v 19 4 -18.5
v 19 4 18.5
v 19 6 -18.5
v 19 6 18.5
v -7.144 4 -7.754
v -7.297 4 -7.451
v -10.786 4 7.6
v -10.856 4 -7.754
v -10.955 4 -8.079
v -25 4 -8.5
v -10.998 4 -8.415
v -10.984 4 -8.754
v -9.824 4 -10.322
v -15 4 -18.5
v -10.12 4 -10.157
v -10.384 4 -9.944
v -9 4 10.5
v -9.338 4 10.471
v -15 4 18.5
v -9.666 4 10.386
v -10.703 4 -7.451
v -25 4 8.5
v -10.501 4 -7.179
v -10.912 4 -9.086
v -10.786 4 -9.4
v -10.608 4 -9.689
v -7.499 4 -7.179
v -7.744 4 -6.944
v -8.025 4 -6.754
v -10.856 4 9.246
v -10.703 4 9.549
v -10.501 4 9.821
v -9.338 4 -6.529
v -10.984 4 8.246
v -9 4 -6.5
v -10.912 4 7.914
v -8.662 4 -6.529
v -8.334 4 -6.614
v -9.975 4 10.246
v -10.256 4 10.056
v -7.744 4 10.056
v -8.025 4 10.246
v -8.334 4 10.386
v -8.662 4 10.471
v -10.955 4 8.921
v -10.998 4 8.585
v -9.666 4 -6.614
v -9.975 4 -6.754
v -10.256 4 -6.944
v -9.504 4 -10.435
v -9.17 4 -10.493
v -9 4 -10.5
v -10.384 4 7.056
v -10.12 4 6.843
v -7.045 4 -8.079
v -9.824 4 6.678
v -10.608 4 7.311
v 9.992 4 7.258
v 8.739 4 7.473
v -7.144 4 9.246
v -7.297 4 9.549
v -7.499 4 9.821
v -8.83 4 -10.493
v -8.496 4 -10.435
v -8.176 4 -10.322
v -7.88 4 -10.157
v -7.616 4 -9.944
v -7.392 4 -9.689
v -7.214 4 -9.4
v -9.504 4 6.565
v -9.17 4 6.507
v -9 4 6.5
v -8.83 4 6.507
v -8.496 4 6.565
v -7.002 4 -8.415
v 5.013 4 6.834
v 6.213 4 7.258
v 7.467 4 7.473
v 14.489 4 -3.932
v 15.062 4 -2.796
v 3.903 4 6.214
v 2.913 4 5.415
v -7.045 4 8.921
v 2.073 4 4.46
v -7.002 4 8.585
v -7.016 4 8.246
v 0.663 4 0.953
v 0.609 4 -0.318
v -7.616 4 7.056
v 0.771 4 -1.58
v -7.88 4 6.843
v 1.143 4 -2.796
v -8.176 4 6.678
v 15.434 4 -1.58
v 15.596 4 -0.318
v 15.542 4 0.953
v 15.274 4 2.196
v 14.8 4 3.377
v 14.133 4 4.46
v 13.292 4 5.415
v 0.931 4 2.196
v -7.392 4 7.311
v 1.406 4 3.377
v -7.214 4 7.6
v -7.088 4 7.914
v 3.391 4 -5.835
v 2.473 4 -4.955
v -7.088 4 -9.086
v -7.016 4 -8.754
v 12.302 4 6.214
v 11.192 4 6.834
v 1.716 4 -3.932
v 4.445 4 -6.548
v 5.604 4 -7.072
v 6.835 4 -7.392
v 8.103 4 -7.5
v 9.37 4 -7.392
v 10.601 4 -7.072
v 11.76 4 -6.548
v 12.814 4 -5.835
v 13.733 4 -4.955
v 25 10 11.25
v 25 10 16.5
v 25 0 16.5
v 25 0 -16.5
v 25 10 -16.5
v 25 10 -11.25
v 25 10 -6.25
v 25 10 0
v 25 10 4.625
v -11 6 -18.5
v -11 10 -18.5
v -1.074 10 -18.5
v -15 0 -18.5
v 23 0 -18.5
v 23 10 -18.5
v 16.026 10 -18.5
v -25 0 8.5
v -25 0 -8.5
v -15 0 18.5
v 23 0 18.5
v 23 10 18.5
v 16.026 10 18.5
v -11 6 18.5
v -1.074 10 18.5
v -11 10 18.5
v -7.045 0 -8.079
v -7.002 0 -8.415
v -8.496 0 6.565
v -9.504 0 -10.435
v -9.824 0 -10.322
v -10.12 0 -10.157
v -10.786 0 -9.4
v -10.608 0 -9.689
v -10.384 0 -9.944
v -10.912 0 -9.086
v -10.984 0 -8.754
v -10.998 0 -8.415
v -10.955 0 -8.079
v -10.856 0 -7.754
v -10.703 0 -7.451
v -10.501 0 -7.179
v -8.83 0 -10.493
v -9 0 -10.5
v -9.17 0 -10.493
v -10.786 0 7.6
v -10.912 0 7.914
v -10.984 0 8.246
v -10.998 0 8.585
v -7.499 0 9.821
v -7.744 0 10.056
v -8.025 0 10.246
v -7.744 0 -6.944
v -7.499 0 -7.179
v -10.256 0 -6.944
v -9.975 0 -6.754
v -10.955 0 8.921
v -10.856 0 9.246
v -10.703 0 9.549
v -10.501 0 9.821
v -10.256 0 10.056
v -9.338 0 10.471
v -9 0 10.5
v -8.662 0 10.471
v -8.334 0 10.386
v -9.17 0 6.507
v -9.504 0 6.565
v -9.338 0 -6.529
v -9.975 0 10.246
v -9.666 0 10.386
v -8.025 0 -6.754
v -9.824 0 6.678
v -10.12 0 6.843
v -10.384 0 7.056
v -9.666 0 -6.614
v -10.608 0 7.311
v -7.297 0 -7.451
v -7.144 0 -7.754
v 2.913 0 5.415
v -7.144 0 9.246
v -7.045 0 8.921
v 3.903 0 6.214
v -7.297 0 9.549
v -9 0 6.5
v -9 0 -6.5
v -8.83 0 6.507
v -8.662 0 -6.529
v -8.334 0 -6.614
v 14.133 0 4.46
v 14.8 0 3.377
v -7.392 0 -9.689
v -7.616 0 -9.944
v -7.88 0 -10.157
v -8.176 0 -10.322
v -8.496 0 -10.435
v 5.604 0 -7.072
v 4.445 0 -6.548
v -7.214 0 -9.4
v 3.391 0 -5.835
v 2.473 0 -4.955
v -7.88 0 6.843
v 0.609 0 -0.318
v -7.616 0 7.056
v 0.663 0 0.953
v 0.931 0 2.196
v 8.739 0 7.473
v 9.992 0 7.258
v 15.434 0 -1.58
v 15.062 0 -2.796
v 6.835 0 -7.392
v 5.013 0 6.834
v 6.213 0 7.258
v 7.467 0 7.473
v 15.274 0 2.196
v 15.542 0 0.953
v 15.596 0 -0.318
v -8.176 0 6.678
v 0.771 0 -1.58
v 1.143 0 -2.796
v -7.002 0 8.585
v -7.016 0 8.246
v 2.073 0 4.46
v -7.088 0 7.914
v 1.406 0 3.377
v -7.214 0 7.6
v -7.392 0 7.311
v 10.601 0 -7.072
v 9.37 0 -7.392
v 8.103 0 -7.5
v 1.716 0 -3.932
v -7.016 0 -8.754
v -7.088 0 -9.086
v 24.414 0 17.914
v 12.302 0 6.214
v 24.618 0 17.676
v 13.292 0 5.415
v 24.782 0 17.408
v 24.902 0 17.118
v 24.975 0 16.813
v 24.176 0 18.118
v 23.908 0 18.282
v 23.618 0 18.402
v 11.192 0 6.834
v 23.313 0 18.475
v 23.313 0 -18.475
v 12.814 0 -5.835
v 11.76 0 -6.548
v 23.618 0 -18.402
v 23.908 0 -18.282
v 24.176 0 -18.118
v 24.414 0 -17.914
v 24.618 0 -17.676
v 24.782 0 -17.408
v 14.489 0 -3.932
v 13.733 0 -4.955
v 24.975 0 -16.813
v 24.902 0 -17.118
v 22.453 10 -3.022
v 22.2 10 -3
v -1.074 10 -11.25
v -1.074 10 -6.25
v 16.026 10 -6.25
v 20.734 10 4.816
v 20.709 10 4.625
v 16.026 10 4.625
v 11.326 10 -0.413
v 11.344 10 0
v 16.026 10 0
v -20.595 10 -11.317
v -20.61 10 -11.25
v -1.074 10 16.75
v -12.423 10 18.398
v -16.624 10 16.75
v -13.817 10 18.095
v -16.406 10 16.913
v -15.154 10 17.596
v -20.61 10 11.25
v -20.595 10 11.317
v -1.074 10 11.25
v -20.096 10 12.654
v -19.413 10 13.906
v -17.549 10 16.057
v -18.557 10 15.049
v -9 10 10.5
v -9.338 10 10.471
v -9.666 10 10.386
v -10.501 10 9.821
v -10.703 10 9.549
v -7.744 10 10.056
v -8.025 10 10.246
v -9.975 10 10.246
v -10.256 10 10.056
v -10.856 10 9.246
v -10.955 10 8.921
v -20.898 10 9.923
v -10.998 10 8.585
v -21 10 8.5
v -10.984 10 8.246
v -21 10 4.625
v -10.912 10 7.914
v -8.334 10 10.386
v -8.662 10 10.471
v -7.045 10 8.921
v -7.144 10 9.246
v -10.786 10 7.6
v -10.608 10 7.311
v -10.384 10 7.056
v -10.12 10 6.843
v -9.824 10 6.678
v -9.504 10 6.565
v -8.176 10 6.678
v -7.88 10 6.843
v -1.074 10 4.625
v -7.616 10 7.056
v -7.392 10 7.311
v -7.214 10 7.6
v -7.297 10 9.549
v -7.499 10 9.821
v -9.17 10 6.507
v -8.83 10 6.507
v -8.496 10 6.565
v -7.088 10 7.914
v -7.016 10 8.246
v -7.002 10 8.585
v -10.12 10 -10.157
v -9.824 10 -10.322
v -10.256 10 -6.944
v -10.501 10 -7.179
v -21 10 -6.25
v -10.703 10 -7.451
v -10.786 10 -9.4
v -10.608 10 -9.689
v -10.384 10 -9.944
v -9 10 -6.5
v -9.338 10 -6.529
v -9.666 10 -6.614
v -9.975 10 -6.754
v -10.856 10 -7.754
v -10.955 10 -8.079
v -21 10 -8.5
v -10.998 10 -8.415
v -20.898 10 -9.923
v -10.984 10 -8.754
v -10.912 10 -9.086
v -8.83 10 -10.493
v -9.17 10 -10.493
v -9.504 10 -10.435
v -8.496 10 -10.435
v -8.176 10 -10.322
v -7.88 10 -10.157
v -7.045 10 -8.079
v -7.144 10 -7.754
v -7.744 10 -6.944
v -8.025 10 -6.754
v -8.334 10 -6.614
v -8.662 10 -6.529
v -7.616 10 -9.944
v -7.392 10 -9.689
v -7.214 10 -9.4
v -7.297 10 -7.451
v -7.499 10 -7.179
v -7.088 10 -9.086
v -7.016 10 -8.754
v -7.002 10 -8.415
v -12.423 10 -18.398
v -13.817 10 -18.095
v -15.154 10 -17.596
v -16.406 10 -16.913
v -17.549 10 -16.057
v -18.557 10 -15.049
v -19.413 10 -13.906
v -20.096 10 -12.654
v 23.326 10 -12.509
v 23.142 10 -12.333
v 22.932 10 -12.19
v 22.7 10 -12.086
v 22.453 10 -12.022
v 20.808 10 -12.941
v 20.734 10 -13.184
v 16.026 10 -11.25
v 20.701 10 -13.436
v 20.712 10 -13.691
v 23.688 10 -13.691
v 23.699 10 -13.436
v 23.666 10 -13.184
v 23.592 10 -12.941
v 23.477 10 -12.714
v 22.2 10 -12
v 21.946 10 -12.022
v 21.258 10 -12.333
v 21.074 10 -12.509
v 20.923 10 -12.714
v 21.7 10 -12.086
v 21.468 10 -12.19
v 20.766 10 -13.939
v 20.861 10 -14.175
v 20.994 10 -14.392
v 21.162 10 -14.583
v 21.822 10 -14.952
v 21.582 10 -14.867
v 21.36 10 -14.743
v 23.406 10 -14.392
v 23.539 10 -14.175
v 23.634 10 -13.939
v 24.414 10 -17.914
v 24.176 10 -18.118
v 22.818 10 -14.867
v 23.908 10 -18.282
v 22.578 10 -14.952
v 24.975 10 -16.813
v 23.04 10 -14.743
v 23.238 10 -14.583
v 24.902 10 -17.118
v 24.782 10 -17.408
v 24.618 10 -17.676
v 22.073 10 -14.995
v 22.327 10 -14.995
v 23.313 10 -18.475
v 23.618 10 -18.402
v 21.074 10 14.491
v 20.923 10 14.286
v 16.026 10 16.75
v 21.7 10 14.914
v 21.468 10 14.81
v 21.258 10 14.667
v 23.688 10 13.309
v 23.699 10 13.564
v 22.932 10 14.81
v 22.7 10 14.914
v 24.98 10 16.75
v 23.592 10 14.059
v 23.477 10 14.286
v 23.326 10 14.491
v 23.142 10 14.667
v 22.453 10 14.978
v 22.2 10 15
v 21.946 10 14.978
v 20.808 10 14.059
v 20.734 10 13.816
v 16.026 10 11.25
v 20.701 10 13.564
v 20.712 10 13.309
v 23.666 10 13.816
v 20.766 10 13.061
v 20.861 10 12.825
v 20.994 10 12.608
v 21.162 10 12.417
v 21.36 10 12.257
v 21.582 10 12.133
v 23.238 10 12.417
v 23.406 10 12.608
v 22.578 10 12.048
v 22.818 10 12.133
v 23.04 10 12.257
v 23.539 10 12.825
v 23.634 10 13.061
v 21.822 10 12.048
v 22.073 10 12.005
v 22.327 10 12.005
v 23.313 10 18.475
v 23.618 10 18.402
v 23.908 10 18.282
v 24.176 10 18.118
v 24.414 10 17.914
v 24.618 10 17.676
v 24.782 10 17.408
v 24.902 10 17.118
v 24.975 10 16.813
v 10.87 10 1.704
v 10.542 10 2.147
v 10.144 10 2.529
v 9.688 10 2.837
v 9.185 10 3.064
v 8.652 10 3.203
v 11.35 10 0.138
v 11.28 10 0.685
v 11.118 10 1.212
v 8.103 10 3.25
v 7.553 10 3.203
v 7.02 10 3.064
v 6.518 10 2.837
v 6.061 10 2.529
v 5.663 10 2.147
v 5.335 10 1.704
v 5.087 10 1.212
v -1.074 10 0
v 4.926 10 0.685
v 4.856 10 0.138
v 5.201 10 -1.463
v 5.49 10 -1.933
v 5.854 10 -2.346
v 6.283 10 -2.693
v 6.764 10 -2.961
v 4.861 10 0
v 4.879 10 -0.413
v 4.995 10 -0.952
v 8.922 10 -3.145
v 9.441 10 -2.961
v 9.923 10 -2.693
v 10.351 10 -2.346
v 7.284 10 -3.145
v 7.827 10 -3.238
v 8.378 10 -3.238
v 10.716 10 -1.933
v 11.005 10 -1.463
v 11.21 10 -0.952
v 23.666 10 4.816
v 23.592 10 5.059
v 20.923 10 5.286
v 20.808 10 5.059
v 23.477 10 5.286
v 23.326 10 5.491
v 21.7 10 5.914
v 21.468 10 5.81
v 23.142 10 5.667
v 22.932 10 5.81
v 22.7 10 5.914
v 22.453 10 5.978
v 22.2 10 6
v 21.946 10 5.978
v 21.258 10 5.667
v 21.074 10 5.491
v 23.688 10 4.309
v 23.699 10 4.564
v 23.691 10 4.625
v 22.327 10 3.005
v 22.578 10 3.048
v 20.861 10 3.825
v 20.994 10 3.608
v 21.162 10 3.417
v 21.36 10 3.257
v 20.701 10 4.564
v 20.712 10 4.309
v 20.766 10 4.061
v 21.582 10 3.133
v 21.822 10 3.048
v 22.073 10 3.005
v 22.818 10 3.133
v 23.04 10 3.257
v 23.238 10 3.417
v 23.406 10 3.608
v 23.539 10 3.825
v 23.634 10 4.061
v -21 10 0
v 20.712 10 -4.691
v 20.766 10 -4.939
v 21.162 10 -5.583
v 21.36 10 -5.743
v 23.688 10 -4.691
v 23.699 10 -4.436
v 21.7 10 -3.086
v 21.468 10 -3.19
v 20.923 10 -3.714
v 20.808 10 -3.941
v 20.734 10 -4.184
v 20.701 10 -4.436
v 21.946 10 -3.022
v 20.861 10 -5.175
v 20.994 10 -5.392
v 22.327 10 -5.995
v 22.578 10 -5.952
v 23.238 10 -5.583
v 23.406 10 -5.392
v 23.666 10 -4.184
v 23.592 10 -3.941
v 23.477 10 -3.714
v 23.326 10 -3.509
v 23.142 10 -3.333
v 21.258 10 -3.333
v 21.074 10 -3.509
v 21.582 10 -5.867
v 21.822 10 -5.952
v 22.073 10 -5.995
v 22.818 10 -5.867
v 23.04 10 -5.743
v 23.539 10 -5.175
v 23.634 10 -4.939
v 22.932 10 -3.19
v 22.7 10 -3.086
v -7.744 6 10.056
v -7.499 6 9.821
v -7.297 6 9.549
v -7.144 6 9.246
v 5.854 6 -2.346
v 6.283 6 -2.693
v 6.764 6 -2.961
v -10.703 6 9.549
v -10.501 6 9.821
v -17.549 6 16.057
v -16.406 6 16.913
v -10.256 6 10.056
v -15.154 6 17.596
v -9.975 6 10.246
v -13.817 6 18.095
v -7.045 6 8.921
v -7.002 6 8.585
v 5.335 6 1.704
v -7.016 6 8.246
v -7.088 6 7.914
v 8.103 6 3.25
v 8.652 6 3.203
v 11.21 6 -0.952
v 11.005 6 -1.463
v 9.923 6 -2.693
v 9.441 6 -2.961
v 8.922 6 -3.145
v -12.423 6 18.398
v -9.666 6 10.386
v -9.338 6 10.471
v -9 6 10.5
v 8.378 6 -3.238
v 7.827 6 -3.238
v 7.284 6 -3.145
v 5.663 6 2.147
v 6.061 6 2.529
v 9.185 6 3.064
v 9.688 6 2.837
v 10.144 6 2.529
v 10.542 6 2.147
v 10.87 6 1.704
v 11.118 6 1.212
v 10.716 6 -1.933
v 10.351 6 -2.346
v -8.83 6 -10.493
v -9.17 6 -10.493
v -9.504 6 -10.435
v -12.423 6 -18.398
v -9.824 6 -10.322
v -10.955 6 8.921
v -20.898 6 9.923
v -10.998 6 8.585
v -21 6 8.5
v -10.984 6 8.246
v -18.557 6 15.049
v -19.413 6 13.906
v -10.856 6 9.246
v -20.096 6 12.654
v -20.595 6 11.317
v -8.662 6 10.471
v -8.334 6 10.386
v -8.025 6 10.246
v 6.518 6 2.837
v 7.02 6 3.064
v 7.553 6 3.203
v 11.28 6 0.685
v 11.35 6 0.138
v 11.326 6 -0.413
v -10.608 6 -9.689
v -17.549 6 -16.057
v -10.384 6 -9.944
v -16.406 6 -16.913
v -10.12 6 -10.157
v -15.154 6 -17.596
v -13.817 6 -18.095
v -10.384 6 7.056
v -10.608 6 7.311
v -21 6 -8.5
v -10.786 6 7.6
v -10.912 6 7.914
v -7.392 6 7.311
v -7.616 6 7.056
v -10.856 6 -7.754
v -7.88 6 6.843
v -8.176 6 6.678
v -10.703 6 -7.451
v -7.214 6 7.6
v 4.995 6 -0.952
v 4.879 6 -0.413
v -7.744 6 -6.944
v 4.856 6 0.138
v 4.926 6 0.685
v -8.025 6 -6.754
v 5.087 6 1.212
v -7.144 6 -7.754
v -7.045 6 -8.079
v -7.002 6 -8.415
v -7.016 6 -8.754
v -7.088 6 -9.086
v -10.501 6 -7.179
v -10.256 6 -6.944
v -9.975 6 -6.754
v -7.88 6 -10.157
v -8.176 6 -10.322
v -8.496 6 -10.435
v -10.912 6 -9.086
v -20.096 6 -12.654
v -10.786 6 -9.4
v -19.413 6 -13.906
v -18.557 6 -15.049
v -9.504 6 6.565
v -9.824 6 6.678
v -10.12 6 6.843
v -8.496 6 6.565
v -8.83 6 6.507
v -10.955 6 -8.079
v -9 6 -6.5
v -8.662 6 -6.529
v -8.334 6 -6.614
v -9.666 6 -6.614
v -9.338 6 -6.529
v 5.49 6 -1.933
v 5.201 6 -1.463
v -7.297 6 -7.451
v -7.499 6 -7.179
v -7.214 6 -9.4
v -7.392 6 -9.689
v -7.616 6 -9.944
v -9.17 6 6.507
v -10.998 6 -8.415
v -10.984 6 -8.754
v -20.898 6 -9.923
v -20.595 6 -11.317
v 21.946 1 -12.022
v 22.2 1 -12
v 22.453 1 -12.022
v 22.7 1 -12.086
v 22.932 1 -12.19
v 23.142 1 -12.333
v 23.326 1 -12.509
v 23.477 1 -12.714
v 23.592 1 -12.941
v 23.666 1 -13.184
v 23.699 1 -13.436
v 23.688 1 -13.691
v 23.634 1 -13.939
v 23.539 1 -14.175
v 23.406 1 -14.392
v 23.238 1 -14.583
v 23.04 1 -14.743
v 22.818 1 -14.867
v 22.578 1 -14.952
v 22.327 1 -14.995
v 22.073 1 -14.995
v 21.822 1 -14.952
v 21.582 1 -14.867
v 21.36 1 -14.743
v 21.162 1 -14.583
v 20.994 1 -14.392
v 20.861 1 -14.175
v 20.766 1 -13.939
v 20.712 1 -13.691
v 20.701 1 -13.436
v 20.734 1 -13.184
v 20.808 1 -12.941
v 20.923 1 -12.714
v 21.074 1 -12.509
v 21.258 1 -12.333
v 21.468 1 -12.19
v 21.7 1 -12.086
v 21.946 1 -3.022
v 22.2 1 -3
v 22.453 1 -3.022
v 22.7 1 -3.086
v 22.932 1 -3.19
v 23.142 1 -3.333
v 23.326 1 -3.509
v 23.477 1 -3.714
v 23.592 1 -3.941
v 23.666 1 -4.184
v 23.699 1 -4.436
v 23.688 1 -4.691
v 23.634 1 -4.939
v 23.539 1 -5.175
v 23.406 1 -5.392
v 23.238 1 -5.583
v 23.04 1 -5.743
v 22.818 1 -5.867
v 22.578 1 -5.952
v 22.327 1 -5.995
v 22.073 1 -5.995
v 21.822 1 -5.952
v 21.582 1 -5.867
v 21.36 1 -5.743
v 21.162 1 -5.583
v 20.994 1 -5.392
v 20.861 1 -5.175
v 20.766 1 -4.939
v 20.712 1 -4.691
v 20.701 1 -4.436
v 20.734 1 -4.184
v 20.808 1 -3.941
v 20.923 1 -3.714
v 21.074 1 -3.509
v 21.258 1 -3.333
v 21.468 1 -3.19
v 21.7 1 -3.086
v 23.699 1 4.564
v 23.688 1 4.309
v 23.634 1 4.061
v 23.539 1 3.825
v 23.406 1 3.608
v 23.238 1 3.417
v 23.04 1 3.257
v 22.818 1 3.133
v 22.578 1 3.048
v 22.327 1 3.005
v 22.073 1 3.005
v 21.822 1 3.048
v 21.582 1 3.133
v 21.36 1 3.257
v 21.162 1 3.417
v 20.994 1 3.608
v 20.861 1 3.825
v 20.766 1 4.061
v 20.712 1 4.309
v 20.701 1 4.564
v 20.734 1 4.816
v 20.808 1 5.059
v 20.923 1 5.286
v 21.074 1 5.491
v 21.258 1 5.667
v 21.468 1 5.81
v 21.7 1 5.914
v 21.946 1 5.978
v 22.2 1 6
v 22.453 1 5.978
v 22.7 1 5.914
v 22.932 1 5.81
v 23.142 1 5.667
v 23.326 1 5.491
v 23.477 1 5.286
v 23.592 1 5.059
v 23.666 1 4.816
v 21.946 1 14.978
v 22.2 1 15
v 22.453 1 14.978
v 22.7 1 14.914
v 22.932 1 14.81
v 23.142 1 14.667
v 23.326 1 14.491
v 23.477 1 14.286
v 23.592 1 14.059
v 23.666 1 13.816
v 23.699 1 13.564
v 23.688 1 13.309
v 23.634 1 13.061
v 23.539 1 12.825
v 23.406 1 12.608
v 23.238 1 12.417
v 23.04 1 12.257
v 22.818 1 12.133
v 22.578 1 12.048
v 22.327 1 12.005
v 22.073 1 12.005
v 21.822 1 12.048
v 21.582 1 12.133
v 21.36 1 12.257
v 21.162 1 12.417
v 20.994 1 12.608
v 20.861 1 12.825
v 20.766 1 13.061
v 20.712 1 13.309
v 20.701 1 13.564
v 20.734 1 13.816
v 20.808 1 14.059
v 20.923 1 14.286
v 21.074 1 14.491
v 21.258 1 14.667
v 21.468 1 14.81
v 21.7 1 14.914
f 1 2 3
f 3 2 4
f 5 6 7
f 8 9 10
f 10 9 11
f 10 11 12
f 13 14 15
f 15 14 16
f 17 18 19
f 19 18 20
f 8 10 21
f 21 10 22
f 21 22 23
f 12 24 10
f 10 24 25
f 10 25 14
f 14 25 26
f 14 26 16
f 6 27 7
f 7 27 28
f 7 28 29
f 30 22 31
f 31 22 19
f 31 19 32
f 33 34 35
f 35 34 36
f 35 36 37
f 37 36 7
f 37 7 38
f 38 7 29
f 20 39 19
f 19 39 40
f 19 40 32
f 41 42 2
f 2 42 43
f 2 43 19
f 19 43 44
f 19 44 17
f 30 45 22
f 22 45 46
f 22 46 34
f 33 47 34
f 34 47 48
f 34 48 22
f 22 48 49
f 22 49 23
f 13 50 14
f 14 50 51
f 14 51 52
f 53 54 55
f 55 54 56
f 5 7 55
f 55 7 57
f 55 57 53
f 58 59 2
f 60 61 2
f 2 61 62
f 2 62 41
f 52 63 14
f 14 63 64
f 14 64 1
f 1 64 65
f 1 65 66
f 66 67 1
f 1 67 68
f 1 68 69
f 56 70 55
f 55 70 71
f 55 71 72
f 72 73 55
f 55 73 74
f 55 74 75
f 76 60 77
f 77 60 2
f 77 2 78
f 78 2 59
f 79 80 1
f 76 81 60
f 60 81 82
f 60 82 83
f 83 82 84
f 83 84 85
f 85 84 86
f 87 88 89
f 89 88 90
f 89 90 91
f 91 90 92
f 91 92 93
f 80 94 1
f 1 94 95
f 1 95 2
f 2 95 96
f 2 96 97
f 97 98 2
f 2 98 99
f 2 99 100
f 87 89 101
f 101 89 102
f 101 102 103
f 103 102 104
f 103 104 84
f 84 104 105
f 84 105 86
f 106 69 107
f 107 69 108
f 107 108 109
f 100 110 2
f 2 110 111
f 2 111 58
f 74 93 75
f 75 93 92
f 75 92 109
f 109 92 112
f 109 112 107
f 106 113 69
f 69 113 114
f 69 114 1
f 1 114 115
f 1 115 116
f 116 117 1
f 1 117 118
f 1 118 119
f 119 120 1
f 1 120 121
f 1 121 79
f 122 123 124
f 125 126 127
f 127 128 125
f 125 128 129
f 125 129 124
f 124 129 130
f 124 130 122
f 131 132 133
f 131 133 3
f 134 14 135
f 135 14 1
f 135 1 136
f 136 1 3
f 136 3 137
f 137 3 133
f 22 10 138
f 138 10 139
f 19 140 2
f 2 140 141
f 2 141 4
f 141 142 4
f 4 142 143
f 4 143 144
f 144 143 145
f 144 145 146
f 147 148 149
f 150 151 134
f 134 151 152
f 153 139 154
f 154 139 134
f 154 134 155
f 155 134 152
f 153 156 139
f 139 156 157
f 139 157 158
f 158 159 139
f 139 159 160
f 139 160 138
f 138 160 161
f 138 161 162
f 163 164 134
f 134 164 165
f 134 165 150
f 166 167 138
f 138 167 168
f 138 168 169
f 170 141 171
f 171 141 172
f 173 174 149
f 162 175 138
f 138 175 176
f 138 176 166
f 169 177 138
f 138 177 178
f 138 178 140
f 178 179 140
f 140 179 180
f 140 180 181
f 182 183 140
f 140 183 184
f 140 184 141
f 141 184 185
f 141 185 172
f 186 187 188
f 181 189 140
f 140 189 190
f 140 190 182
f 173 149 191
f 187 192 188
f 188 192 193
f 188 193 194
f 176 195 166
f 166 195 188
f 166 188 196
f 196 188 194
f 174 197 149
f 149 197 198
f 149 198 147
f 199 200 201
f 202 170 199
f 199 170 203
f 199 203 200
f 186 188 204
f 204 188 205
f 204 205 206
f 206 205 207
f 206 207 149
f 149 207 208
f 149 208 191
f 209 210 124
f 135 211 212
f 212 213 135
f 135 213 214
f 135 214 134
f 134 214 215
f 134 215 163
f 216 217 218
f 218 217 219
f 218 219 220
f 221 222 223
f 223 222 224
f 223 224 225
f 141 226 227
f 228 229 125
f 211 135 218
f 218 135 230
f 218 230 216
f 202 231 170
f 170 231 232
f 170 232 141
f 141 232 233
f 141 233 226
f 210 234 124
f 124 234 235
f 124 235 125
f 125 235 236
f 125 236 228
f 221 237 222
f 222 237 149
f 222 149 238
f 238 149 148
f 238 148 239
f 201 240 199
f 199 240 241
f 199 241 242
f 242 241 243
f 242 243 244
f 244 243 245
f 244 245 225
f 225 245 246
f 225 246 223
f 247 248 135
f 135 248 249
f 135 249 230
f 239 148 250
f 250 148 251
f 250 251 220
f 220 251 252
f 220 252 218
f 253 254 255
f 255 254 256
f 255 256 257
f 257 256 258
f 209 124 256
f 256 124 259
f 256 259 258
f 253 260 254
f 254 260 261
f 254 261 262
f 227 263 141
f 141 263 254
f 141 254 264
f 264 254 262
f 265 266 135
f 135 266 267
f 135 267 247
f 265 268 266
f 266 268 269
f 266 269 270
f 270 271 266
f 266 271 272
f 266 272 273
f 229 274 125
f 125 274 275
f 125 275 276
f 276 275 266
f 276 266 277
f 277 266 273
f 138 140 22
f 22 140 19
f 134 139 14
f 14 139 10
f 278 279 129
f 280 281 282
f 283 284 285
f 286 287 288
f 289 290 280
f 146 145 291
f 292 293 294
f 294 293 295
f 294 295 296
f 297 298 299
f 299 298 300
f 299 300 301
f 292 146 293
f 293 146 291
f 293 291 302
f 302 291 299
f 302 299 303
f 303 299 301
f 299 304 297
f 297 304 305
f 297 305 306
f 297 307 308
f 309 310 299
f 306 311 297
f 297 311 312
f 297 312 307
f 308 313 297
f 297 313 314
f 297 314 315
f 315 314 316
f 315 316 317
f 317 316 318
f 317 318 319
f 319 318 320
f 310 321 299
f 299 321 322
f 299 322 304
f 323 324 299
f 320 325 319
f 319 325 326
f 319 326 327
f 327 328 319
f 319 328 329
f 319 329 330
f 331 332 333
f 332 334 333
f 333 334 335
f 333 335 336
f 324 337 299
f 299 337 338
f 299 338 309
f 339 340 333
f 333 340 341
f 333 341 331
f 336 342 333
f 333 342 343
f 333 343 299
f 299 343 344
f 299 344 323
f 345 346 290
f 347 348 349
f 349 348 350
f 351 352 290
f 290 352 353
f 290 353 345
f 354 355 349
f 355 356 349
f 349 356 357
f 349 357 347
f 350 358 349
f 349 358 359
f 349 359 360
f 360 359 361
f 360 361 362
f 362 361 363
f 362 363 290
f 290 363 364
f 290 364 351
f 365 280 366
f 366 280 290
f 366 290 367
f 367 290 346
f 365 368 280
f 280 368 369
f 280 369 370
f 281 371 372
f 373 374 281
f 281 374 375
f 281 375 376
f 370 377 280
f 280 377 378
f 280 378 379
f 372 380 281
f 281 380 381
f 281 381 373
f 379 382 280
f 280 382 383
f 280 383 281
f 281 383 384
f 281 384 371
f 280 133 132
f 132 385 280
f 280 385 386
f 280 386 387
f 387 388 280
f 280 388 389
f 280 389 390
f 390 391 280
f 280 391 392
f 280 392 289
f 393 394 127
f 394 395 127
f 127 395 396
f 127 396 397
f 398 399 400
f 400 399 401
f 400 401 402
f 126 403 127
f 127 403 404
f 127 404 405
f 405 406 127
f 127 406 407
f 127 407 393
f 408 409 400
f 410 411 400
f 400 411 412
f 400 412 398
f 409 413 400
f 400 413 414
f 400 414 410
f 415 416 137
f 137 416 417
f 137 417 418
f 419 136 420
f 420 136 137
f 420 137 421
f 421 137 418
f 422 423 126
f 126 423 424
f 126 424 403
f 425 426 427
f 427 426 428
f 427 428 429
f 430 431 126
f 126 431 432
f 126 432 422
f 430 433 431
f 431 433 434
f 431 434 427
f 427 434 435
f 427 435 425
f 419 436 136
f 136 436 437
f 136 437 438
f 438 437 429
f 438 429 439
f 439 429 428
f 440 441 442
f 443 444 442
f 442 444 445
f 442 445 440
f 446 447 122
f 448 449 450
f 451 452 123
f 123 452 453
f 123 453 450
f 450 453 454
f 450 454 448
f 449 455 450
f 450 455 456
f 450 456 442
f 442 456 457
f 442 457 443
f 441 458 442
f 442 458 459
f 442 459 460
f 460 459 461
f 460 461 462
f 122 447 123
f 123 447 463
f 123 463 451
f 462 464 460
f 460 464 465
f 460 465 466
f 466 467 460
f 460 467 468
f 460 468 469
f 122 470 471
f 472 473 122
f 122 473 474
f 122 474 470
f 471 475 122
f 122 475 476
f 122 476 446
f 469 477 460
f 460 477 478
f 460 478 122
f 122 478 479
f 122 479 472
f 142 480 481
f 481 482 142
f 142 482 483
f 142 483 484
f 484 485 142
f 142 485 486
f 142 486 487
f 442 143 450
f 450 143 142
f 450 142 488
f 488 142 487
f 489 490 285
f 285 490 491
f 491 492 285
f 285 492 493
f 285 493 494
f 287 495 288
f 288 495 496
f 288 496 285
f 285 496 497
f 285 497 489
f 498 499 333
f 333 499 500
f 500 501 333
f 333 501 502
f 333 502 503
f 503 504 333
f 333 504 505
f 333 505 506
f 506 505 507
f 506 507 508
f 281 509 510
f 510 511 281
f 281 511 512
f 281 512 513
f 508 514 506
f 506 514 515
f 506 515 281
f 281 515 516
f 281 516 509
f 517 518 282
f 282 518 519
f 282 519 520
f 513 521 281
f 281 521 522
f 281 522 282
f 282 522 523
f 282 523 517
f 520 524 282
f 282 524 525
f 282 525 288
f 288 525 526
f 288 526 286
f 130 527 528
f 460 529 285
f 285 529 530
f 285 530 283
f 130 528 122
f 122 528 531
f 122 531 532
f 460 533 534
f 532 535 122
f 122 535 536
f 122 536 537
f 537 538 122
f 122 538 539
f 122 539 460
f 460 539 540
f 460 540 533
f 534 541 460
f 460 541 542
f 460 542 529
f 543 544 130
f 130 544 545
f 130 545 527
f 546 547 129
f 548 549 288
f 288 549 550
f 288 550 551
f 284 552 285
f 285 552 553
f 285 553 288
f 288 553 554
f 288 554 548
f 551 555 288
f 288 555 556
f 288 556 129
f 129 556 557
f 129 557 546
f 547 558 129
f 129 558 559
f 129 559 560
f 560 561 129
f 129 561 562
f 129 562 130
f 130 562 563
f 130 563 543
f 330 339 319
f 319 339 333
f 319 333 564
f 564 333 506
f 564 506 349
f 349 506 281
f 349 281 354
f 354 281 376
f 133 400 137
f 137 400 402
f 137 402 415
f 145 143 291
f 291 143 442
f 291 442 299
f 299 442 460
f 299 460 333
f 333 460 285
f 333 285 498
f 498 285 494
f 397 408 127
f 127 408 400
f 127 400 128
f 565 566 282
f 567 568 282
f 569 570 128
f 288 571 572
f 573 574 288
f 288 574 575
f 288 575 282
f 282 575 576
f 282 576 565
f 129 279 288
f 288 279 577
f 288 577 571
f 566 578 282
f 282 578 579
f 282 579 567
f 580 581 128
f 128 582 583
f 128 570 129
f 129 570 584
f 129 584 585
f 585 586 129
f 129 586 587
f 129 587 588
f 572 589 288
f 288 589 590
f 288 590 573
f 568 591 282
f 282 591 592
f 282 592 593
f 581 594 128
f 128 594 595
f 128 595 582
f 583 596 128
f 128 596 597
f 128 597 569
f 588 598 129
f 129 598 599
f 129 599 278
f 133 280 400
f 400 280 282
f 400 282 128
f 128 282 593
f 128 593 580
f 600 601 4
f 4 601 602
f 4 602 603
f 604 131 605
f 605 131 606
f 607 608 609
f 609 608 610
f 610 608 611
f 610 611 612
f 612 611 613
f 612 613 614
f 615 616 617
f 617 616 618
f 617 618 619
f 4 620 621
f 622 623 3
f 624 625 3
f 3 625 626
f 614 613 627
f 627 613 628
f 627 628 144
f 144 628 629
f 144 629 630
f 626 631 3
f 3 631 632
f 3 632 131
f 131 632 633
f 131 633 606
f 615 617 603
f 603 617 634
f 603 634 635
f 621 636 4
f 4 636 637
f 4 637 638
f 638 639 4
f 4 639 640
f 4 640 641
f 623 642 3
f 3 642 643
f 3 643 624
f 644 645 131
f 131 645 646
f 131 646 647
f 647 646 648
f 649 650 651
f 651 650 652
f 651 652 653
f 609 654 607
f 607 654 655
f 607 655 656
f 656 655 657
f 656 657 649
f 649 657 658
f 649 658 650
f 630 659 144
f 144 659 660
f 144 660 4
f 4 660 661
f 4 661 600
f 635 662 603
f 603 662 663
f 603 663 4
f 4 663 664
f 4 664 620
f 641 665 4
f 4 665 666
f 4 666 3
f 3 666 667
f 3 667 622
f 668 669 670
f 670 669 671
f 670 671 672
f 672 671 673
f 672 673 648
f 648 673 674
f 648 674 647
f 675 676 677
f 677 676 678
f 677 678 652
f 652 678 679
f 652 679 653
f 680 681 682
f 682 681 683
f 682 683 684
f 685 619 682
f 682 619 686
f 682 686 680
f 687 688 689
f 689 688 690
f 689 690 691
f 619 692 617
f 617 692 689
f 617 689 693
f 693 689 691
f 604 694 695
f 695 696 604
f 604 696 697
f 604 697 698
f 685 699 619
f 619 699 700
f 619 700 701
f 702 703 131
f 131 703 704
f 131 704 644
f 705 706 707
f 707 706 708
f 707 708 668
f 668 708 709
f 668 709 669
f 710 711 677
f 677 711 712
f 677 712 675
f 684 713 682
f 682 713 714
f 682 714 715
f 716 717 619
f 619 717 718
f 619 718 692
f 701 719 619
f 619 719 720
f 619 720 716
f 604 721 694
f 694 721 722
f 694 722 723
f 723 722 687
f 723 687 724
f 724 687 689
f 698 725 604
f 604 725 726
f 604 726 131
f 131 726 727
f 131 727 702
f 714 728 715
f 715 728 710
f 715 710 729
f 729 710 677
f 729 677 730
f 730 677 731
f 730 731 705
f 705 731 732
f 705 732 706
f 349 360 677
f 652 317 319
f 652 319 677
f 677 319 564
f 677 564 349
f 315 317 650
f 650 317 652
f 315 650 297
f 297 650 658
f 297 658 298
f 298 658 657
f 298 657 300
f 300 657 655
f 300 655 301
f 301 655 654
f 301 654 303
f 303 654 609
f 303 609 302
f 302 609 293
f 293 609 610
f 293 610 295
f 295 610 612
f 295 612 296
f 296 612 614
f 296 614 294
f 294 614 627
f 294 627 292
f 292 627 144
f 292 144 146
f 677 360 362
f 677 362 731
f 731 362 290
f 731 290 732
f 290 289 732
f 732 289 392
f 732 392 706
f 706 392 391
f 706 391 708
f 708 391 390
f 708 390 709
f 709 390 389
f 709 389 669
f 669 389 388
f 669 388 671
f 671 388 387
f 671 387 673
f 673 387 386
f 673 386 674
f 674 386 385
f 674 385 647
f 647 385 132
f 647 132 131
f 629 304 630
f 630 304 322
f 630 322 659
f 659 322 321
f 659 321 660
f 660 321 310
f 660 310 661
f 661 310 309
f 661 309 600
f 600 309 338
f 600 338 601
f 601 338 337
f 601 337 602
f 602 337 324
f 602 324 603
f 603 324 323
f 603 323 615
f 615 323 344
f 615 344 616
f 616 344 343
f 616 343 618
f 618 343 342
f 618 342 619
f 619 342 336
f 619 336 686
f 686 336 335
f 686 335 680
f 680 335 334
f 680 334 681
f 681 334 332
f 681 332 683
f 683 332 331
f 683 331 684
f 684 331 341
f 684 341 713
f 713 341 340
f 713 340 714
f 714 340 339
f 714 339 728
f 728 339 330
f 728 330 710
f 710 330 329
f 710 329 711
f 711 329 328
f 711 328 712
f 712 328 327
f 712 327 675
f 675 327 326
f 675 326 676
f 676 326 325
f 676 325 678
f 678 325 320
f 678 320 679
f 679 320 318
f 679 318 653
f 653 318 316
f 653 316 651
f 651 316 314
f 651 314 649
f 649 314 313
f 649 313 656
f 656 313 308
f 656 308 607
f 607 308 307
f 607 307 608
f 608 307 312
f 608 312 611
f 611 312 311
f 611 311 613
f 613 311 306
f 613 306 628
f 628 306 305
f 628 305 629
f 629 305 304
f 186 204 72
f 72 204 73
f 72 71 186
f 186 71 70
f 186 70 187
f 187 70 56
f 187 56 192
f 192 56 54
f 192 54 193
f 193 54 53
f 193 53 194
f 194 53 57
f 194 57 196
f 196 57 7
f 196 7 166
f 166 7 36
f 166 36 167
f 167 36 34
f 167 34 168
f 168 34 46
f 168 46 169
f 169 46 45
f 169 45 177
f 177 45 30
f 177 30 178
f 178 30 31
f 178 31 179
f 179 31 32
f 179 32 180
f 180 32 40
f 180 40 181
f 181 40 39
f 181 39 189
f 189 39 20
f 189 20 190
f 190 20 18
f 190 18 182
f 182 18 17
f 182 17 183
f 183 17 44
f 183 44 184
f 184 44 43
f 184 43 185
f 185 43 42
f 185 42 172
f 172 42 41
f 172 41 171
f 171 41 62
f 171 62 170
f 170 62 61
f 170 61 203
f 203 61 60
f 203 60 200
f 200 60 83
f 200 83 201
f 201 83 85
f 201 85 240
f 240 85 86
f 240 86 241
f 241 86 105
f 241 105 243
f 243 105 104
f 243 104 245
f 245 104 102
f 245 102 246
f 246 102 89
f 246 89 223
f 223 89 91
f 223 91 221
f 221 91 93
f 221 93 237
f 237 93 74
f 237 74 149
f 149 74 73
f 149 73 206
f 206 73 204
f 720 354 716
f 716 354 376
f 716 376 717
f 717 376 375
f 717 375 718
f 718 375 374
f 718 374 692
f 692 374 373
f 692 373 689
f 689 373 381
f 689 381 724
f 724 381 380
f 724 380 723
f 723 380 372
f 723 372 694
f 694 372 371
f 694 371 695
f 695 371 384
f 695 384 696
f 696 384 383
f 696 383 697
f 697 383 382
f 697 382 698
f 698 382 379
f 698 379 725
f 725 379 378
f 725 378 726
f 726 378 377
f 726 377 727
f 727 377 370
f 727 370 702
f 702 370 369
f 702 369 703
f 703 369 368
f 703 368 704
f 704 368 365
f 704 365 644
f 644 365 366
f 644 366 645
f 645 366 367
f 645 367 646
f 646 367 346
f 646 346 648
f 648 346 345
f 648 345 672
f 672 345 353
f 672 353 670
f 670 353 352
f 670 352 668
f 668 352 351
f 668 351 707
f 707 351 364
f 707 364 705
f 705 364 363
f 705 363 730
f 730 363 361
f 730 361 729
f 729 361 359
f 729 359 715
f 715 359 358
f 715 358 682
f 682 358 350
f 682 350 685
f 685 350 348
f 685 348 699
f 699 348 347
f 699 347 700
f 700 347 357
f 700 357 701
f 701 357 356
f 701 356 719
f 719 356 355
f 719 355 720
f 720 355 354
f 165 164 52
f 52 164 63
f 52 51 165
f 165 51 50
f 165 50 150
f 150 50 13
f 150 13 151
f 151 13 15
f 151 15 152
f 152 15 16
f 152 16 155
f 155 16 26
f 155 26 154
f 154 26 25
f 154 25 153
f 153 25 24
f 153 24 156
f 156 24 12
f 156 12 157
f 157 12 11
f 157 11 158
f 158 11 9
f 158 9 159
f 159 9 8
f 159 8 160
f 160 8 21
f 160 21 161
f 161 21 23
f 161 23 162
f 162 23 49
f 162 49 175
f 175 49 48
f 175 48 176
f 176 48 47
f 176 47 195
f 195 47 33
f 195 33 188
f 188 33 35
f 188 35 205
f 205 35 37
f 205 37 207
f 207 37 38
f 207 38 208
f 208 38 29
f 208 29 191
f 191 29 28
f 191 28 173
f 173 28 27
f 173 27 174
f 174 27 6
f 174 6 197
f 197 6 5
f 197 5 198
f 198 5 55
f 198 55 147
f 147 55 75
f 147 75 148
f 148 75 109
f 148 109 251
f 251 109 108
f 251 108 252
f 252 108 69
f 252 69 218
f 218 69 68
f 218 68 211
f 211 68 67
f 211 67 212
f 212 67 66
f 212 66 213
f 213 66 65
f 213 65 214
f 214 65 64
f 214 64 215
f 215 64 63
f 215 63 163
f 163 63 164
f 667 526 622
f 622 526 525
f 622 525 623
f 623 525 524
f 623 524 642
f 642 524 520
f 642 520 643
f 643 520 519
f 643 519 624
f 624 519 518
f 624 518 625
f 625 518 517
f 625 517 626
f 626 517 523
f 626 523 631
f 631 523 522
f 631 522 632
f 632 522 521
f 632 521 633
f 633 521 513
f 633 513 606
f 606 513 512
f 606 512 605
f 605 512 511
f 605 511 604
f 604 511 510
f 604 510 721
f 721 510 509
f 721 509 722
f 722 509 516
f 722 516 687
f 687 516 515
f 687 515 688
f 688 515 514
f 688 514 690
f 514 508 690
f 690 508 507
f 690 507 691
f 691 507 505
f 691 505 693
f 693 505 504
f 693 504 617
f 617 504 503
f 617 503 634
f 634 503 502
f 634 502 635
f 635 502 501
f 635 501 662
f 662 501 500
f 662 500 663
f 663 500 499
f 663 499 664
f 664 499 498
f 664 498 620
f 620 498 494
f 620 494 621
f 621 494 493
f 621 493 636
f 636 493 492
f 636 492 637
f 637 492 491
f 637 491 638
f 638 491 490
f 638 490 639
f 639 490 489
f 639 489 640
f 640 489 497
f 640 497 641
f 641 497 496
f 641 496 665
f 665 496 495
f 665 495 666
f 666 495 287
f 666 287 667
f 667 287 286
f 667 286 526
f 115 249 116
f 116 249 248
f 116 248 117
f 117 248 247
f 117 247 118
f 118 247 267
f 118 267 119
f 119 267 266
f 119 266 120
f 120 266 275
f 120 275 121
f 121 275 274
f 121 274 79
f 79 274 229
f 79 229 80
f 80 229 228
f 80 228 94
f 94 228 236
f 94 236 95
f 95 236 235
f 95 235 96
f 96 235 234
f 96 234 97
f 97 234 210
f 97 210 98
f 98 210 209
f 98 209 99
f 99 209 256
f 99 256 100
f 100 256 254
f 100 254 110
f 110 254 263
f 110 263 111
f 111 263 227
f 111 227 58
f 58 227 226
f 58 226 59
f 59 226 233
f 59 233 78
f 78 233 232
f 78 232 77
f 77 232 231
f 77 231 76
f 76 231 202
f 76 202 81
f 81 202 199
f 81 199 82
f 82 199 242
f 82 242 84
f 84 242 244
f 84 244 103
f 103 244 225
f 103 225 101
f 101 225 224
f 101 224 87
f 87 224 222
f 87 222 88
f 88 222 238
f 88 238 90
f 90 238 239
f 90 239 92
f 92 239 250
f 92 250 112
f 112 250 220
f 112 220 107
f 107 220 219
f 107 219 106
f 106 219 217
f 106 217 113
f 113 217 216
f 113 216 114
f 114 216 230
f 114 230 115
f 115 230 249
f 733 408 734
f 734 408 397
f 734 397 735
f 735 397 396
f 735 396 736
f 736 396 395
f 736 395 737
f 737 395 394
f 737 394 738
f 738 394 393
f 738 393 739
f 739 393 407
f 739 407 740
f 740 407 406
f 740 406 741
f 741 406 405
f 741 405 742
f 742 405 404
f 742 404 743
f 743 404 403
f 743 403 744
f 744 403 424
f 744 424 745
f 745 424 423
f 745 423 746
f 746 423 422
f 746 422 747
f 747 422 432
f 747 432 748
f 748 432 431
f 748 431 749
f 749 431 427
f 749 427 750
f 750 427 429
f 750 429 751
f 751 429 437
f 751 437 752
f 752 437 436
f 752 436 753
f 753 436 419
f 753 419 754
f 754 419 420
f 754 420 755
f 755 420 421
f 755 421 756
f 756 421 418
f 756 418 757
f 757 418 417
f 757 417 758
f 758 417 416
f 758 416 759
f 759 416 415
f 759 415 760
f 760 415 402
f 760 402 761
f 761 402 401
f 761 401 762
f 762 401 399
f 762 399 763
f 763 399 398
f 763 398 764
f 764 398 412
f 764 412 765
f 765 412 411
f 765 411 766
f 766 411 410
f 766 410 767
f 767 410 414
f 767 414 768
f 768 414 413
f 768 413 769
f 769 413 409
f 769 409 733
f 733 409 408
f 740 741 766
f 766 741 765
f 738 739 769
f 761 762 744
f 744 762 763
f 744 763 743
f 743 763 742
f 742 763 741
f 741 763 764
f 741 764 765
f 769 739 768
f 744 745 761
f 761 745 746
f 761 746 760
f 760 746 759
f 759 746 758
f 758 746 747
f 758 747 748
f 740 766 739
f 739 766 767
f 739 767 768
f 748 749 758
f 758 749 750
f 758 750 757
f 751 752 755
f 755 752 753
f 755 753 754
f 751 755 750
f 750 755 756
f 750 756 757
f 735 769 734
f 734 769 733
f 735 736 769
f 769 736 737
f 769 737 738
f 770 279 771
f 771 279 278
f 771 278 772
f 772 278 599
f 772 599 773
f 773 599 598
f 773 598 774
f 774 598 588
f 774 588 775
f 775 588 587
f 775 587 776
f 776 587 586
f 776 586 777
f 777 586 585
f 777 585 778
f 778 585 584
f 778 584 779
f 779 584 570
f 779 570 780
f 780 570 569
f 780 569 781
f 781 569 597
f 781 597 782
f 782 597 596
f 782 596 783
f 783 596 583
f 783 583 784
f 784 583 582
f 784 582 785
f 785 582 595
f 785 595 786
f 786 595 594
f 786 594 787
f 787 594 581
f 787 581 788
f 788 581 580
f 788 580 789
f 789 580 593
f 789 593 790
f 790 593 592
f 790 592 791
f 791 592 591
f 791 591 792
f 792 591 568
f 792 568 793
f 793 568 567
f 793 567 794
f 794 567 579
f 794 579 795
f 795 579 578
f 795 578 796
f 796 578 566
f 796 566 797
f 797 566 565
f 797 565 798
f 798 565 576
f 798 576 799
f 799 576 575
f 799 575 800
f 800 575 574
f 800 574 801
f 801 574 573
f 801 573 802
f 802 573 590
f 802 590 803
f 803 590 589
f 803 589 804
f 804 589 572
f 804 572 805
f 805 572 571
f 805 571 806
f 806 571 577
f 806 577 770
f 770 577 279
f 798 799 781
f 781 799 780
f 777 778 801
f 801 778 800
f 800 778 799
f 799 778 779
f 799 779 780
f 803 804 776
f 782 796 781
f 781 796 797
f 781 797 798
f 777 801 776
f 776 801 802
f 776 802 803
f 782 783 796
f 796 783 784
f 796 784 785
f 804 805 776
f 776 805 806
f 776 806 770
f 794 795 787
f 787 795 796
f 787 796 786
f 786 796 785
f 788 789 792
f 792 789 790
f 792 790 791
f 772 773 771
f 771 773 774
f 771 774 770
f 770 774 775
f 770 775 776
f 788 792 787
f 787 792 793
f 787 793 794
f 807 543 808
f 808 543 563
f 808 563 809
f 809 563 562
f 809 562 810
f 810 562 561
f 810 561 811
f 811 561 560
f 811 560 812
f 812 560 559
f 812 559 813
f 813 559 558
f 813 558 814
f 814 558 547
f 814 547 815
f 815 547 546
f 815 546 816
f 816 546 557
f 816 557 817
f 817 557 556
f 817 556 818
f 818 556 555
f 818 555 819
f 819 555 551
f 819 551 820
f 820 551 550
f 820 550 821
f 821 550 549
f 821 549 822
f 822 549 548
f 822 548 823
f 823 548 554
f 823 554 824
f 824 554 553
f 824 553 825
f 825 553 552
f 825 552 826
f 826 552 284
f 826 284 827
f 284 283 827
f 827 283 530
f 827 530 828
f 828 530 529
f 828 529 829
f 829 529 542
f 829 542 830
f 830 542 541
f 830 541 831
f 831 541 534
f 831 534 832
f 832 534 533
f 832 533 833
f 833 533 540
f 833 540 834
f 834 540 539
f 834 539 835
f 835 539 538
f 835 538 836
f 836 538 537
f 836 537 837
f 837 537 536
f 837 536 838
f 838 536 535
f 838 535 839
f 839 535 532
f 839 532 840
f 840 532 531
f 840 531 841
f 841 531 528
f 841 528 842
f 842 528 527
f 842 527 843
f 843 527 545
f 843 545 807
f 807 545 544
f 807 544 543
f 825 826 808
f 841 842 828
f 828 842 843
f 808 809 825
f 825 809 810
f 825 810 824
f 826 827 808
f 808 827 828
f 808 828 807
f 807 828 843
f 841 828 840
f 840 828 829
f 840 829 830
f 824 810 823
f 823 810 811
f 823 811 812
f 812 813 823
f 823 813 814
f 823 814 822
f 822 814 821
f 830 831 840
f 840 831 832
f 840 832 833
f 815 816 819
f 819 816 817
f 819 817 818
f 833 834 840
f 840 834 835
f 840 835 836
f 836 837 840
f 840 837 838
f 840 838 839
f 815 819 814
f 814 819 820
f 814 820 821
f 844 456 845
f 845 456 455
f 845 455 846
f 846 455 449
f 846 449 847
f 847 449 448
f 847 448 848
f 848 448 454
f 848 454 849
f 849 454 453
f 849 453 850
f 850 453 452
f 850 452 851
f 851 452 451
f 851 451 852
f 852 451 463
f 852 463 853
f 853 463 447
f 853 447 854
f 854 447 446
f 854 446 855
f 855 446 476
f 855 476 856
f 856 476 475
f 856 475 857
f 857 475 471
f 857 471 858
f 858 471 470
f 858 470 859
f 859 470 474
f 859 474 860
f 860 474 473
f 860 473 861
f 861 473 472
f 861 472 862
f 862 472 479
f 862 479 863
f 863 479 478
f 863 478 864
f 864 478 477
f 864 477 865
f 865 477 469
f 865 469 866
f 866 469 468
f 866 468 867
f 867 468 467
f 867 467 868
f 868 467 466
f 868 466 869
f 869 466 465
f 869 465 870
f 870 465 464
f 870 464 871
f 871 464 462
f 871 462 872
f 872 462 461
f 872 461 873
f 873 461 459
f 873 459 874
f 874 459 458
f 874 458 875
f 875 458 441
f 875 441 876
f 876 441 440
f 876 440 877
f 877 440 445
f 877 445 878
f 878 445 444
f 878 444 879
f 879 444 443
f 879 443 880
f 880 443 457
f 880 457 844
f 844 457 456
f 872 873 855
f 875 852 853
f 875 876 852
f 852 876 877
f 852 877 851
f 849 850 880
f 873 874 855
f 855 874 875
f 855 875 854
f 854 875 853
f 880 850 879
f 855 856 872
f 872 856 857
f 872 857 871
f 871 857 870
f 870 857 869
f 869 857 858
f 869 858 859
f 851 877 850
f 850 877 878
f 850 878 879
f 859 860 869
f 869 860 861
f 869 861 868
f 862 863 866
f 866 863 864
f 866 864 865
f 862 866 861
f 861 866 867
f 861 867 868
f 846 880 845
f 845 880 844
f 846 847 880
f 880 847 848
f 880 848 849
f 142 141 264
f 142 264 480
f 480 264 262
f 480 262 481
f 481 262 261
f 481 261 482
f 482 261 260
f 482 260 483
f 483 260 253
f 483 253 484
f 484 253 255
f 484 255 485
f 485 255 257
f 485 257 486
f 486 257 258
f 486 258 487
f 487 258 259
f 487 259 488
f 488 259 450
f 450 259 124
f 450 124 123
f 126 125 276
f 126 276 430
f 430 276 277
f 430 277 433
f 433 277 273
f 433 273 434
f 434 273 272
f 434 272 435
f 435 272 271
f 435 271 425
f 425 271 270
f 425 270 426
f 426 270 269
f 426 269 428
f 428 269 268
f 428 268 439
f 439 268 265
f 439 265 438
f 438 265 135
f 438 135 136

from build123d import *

# Parameters (mm, degrees)
SKETCH1_W           = 50
SKETCH1_H           = 37
BOSS_EXTRUDE1_DEPTH = 4
CHAMFER1_SIZE       = 10
SKETCH2_W           = 6
SKETCH2_H           = 37
BOSS_EXTRUDE2_DEPTH = 6
SKETCH3_W           = 37
SKETCH3_H           = 4
BOSS_EXTRUDE3_DEPTH = 40
FILLET1_R           = 10
SKETCH4_R           = 2
CUT_EXTRUDE1_DEPTH  = 40
SKETCH5_R           = 3.25
CUT_EXTRUDE2_DEPTH  = 40
SKETCH6_R           = 7.5
CUT_EXTRUDE3_DEPTH  = 5
SKETCH7_R           = 1.5
CUT_EXTRUDE4_DEPTH  = 9
FILLET2_R           = 2


with BuildPart() as part:
    # Sketch1 → Boss-Extrude1 (new body)
    with BuildSketch(Plane(origin=(0, 0, 0), x_dir=(1, 0, 0), z_dir=(0, 1, 0))):
        Rectangle(SKETCH1_W, SKETCH1_H)
    extrude(amount=BOSS_EXTRUDE1_DEPTH)

    # Chamfer1
    chamfer1_edges = [part.edges().sort_by_distance(p)[0] for p in [
        (-25, 2, 18.5),
        (-25, 2, -18.5),
    ]]
    chamfer(chamfer1_edges, length=CHAMFER1_SIZE)

    # Sketch2 → Boss-Extrude2 (add)
    with BuildSketch(Plane(origin=(0, 4, 0), x_dir=(1, 0, 0), z_dir=(0, 1, 0))):
        with Locations((22, 0)):
            Rectangle(SKETCH2_W, SKETCH2_H)
    extrude(amount=BOSS_EXTRUDE2_DEPTH)

    # Sketch3 → Boss-Extrude3 (add)
    with BuildSketch(Plane.ZY.offset(-19)):
        with Locations((0, 8)):
            Rectangle(SKETCH3_W, SKETCH3_H)
    extrude(amount=BOSS_EXTRUDE3_DEPTH)

    # Fillet1
    fillet1_edges = [part.edges().sort_by_distance(p)[0] for p in [
        (-21, 8, -18.5),
        (-21, 8, 18.5),
    ]]
    fillet(fillet1_edges, radius=FILLET1_R)

    # Sketch4 → Cut-Extrude1 (cut)
    with BuildSketch(Plane(origin=(0, 10, 0), x_dir=(1, 0, 0), z_dir=(0, 1, 0))):
        with Locations(Location((-9, -8.5, 0), (0, 0, 270))):
            Circle(SKETCH4_R)
        with Locations(Location((-9, 8.5, 0), (0, 0, 270))):
            Circle(SKETCH4_R)
    extrude(amount=-CUT_EXTRUDE1_DEPTH, mode=Mode.SUBTRACT)

    # Sketch5 → Cut-Extrude2 (cut)
    with BuildSketch(Plane(origin=(0, 10, 0), x_dir=(1, 0, 0), z_dir=(0, 1, 0))):
        with Locations(Location((8.102581703, 0, 0), (0, 0, 270))):
            Circle(SKETCH5_R)
    extrude(amount=-CUT_EXTRUDE2_DEPTH, mode=Mode.SUBTRACT)

    # Sketch6 → Cut-Extrude3 (cut)
    with BuildSketch(Plane.XZ):
        with Locations(Location((8.102581703, 0, 0), (0, 0, 270))):
            Circle(SKETCH6_R)
    extrude(amount=-CUT_EXTRUDE3_DEPTH, mode=Mode.SUBTRACT)

    # Sketch7 → Cut-Extrude4 (cut)
    with BuildSketch(Plane(origin=(0, 10, 0), x_dir=(1, 0, 0), z_dir=(0, 1, 0))):
        with Locations(Location((22.2, 13.5, 0), (0, 0, 270))):
            Circle(SKETCH7_R)
        with Locations(Location((22.2, 4.5, 0), (0, 0, 270))):
            Circle(SKETCH7_R)
        with Locations(Location((22.2, -4.5, 0), (0, 0, 270))):
            Circle(SKETCH7_R)
        with Locations(Location((22.2, -13.5, 0), (0, 0, 270))):
            Circle(SKETCH7_R)
    extrude(amount=-CUT_EXTRUDE4_DEPTH, mode=Mode.SUBTRACT)

    # Fillet2
    fillet2_edges = [part.edges().sort_by_distance(p)[0] for p in [
        (25, 5, 18.5),
        (25, 5, -18.5),
    ]]
    fillet(fillet2_edges, radius=FILLET2_R)


solid = part.part
